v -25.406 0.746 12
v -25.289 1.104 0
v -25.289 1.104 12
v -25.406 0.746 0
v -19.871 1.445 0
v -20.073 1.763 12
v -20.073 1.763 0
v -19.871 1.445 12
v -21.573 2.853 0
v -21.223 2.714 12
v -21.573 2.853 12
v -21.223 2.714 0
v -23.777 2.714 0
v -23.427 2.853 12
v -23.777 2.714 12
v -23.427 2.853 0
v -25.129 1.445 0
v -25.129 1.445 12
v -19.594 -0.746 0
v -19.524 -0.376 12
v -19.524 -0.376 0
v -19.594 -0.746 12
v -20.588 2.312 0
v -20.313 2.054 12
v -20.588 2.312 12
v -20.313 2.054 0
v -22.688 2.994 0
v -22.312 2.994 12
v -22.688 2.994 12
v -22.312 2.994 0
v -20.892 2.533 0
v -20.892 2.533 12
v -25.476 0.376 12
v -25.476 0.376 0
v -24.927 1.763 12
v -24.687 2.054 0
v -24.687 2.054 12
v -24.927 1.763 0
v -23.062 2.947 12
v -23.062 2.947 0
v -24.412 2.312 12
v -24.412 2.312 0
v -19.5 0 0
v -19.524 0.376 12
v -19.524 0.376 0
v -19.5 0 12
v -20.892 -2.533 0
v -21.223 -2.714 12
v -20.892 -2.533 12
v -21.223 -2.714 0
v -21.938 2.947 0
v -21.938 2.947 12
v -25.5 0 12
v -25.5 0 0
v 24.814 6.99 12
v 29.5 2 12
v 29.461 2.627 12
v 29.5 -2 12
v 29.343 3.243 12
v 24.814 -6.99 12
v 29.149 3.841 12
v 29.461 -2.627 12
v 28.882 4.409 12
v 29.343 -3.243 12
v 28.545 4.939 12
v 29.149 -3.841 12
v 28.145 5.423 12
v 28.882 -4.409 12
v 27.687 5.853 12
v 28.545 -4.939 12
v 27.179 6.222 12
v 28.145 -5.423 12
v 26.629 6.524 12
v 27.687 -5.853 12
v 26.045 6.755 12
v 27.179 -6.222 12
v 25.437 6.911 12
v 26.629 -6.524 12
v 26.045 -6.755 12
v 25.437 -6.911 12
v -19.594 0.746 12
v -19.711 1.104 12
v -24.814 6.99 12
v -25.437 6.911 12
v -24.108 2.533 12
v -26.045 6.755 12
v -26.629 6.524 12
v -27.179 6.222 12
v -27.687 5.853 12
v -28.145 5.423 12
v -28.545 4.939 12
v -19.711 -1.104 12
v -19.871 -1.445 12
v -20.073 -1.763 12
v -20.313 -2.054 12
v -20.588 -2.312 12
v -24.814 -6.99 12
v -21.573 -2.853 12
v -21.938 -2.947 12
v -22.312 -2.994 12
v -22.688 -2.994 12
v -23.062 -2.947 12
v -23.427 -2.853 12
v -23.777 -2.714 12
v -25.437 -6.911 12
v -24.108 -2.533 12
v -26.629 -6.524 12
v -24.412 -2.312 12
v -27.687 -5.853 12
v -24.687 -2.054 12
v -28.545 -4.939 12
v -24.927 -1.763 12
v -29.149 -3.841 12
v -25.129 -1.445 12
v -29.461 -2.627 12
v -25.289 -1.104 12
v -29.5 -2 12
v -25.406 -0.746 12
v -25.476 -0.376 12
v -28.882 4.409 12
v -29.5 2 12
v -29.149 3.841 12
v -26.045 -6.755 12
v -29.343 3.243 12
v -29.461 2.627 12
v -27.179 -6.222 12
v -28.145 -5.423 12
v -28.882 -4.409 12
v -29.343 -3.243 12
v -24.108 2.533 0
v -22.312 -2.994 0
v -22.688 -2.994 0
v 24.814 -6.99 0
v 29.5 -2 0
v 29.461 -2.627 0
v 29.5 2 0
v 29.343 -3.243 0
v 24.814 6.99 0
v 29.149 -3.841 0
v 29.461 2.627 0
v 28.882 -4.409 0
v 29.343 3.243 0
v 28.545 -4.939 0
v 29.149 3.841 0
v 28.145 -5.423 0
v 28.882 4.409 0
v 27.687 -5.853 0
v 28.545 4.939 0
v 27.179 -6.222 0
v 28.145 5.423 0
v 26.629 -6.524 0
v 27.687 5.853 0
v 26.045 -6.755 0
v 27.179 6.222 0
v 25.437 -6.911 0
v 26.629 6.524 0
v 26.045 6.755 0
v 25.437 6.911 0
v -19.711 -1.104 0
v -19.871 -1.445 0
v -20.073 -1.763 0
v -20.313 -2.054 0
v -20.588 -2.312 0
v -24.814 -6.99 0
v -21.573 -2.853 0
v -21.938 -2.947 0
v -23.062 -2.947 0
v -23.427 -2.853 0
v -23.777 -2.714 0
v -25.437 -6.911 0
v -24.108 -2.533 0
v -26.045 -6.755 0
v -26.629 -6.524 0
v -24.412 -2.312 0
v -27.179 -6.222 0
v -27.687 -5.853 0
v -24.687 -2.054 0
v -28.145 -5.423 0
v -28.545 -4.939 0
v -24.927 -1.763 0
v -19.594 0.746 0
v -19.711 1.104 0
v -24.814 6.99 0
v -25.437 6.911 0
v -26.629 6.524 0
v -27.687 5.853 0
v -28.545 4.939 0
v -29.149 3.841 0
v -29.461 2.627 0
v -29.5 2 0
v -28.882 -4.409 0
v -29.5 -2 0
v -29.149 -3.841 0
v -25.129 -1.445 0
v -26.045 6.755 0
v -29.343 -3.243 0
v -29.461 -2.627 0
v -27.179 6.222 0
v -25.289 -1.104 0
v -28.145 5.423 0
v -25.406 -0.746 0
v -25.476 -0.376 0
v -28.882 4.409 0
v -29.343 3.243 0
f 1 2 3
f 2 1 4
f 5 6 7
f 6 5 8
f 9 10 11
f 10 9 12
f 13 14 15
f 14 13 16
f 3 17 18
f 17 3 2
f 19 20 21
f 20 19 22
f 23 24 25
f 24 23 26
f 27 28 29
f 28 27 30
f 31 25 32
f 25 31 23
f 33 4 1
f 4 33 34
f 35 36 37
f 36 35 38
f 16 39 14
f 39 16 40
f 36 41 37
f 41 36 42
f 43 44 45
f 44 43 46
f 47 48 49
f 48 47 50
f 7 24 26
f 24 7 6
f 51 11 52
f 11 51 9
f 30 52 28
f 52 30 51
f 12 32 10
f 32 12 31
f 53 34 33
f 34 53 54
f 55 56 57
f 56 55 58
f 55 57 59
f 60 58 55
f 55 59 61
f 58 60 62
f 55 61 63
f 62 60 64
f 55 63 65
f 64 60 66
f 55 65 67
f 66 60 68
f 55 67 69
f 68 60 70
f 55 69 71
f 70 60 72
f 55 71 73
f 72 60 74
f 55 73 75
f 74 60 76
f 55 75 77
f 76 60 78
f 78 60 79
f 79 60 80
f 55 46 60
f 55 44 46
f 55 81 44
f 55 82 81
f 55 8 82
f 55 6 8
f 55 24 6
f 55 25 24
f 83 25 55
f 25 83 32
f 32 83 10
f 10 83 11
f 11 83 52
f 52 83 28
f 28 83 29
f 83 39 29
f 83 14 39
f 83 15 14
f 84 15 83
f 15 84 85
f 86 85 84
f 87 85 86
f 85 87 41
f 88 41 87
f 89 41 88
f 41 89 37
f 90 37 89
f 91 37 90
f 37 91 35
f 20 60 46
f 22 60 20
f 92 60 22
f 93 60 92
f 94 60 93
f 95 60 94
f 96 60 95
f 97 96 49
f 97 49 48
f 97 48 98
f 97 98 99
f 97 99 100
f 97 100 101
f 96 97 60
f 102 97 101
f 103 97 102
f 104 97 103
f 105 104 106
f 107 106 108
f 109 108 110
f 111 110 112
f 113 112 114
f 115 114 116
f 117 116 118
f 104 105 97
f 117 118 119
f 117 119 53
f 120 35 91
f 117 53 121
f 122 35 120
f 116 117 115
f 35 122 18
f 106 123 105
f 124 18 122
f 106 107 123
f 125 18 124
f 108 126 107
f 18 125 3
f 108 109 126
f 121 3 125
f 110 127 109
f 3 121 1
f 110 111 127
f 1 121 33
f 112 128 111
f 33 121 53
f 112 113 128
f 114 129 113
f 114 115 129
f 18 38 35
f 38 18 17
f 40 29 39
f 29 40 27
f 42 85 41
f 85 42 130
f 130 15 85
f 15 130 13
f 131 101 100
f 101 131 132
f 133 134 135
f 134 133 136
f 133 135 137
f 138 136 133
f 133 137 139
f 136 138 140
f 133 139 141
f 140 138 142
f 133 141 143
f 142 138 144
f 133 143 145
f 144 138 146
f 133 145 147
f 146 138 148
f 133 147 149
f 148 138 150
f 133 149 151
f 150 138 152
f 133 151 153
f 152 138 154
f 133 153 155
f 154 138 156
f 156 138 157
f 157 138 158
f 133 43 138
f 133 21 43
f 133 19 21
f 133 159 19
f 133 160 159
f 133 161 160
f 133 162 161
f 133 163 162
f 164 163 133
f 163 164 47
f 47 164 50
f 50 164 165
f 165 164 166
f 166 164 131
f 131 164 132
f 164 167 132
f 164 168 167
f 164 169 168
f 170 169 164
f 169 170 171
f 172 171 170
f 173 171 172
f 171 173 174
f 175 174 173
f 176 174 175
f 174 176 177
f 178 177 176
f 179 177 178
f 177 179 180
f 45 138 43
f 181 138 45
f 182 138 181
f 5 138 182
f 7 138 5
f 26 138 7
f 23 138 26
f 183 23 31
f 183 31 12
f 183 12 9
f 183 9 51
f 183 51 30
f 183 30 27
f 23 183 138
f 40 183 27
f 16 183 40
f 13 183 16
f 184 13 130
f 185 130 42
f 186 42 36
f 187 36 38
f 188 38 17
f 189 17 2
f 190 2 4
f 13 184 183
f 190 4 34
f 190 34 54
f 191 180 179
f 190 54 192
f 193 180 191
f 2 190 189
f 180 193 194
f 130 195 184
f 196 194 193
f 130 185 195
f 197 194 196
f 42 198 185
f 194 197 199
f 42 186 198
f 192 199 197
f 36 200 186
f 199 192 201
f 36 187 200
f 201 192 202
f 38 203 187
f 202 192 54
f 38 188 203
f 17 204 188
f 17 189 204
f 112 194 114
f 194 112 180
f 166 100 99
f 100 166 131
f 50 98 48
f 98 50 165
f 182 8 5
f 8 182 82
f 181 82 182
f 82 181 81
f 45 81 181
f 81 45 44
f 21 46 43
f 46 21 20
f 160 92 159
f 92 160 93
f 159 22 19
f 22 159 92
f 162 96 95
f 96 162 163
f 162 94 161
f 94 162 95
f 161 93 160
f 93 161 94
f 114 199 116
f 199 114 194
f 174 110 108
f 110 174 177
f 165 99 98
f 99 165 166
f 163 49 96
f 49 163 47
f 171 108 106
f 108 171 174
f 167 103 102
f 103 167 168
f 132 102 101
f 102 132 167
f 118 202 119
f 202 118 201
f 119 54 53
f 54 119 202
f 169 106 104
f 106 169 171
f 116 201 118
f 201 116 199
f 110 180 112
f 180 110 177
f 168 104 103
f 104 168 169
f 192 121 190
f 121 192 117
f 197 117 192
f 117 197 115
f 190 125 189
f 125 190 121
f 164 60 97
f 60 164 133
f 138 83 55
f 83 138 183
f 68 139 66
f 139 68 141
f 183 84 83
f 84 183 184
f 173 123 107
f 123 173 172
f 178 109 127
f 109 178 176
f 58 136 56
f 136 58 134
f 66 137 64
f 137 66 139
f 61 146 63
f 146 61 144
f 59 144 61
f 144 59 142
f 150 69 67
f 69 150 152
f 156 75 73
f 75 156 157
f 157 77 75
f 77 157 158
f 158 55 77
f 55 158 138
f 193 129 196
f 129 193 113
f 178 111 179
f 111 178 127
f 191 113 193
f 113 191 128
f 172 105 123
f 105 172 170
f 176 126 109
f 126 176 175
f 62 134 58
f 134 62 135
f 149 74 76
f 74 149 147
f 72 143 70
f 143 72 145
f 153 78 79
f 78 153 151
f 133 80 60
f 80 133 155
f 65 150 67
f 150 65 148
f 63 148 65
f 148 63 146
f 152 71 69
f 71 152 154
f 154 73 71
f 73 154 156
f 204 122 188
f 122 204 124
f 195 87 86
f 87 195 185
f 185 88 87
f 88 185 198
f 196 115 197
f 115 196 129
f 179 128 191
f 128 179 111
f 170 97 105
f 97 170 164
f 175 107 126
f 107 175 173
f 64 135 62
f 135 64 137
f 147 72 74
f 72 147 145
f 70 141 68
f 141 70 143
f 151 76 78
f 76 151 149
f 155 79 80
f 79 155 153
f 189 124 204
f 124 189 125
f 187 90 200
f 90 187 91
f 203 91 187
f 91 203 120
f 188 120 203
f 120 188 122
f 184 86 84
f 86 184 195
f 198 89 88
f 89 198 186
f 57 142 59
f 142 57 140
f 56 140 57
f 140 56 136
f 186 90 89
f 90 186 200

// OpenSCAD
$fn = 50;


difference() {
	union() {
		hull() {
			translate(v = [-24.5000000000, 2.0000000000, 0]) {
				cylinder(h = 12, r = 5);
			}
			translate(v = [24.5000000000, 2.0000000000, 0]) {
				cylinder(h = 12, r = 5);
			}
			translate(v = [-24.5000000000, -2.0000000000, 0]) {
				cylinder(h = 12, r = 5);
			}
			translate(v = [24.5000000000, -2.0000000000, 0]) {
				cylinder(h = 12, r = 5);
			}
		}
	}
	union() {
		translate(v = [-22.5000000000, 0.0000000000, 0]) {
			cylinder(h = 12, r = 3.0000000000);
		}
		translate(v = [-22.5000000000, 0.0000000000, 0]) {
			cylinder(h = 12, r = 1.5000000000);
		}
		translate(v = [-22.5000000000, 0.0000000000, 0]) {
			cylinder(h = 12, r = 1.5000000000);
		}
		translate(v = [-22.5000000000, 0.0000000000, 0]) {
			cylinder(h = 12, r = 1.5000000000);
		}
	}
}
